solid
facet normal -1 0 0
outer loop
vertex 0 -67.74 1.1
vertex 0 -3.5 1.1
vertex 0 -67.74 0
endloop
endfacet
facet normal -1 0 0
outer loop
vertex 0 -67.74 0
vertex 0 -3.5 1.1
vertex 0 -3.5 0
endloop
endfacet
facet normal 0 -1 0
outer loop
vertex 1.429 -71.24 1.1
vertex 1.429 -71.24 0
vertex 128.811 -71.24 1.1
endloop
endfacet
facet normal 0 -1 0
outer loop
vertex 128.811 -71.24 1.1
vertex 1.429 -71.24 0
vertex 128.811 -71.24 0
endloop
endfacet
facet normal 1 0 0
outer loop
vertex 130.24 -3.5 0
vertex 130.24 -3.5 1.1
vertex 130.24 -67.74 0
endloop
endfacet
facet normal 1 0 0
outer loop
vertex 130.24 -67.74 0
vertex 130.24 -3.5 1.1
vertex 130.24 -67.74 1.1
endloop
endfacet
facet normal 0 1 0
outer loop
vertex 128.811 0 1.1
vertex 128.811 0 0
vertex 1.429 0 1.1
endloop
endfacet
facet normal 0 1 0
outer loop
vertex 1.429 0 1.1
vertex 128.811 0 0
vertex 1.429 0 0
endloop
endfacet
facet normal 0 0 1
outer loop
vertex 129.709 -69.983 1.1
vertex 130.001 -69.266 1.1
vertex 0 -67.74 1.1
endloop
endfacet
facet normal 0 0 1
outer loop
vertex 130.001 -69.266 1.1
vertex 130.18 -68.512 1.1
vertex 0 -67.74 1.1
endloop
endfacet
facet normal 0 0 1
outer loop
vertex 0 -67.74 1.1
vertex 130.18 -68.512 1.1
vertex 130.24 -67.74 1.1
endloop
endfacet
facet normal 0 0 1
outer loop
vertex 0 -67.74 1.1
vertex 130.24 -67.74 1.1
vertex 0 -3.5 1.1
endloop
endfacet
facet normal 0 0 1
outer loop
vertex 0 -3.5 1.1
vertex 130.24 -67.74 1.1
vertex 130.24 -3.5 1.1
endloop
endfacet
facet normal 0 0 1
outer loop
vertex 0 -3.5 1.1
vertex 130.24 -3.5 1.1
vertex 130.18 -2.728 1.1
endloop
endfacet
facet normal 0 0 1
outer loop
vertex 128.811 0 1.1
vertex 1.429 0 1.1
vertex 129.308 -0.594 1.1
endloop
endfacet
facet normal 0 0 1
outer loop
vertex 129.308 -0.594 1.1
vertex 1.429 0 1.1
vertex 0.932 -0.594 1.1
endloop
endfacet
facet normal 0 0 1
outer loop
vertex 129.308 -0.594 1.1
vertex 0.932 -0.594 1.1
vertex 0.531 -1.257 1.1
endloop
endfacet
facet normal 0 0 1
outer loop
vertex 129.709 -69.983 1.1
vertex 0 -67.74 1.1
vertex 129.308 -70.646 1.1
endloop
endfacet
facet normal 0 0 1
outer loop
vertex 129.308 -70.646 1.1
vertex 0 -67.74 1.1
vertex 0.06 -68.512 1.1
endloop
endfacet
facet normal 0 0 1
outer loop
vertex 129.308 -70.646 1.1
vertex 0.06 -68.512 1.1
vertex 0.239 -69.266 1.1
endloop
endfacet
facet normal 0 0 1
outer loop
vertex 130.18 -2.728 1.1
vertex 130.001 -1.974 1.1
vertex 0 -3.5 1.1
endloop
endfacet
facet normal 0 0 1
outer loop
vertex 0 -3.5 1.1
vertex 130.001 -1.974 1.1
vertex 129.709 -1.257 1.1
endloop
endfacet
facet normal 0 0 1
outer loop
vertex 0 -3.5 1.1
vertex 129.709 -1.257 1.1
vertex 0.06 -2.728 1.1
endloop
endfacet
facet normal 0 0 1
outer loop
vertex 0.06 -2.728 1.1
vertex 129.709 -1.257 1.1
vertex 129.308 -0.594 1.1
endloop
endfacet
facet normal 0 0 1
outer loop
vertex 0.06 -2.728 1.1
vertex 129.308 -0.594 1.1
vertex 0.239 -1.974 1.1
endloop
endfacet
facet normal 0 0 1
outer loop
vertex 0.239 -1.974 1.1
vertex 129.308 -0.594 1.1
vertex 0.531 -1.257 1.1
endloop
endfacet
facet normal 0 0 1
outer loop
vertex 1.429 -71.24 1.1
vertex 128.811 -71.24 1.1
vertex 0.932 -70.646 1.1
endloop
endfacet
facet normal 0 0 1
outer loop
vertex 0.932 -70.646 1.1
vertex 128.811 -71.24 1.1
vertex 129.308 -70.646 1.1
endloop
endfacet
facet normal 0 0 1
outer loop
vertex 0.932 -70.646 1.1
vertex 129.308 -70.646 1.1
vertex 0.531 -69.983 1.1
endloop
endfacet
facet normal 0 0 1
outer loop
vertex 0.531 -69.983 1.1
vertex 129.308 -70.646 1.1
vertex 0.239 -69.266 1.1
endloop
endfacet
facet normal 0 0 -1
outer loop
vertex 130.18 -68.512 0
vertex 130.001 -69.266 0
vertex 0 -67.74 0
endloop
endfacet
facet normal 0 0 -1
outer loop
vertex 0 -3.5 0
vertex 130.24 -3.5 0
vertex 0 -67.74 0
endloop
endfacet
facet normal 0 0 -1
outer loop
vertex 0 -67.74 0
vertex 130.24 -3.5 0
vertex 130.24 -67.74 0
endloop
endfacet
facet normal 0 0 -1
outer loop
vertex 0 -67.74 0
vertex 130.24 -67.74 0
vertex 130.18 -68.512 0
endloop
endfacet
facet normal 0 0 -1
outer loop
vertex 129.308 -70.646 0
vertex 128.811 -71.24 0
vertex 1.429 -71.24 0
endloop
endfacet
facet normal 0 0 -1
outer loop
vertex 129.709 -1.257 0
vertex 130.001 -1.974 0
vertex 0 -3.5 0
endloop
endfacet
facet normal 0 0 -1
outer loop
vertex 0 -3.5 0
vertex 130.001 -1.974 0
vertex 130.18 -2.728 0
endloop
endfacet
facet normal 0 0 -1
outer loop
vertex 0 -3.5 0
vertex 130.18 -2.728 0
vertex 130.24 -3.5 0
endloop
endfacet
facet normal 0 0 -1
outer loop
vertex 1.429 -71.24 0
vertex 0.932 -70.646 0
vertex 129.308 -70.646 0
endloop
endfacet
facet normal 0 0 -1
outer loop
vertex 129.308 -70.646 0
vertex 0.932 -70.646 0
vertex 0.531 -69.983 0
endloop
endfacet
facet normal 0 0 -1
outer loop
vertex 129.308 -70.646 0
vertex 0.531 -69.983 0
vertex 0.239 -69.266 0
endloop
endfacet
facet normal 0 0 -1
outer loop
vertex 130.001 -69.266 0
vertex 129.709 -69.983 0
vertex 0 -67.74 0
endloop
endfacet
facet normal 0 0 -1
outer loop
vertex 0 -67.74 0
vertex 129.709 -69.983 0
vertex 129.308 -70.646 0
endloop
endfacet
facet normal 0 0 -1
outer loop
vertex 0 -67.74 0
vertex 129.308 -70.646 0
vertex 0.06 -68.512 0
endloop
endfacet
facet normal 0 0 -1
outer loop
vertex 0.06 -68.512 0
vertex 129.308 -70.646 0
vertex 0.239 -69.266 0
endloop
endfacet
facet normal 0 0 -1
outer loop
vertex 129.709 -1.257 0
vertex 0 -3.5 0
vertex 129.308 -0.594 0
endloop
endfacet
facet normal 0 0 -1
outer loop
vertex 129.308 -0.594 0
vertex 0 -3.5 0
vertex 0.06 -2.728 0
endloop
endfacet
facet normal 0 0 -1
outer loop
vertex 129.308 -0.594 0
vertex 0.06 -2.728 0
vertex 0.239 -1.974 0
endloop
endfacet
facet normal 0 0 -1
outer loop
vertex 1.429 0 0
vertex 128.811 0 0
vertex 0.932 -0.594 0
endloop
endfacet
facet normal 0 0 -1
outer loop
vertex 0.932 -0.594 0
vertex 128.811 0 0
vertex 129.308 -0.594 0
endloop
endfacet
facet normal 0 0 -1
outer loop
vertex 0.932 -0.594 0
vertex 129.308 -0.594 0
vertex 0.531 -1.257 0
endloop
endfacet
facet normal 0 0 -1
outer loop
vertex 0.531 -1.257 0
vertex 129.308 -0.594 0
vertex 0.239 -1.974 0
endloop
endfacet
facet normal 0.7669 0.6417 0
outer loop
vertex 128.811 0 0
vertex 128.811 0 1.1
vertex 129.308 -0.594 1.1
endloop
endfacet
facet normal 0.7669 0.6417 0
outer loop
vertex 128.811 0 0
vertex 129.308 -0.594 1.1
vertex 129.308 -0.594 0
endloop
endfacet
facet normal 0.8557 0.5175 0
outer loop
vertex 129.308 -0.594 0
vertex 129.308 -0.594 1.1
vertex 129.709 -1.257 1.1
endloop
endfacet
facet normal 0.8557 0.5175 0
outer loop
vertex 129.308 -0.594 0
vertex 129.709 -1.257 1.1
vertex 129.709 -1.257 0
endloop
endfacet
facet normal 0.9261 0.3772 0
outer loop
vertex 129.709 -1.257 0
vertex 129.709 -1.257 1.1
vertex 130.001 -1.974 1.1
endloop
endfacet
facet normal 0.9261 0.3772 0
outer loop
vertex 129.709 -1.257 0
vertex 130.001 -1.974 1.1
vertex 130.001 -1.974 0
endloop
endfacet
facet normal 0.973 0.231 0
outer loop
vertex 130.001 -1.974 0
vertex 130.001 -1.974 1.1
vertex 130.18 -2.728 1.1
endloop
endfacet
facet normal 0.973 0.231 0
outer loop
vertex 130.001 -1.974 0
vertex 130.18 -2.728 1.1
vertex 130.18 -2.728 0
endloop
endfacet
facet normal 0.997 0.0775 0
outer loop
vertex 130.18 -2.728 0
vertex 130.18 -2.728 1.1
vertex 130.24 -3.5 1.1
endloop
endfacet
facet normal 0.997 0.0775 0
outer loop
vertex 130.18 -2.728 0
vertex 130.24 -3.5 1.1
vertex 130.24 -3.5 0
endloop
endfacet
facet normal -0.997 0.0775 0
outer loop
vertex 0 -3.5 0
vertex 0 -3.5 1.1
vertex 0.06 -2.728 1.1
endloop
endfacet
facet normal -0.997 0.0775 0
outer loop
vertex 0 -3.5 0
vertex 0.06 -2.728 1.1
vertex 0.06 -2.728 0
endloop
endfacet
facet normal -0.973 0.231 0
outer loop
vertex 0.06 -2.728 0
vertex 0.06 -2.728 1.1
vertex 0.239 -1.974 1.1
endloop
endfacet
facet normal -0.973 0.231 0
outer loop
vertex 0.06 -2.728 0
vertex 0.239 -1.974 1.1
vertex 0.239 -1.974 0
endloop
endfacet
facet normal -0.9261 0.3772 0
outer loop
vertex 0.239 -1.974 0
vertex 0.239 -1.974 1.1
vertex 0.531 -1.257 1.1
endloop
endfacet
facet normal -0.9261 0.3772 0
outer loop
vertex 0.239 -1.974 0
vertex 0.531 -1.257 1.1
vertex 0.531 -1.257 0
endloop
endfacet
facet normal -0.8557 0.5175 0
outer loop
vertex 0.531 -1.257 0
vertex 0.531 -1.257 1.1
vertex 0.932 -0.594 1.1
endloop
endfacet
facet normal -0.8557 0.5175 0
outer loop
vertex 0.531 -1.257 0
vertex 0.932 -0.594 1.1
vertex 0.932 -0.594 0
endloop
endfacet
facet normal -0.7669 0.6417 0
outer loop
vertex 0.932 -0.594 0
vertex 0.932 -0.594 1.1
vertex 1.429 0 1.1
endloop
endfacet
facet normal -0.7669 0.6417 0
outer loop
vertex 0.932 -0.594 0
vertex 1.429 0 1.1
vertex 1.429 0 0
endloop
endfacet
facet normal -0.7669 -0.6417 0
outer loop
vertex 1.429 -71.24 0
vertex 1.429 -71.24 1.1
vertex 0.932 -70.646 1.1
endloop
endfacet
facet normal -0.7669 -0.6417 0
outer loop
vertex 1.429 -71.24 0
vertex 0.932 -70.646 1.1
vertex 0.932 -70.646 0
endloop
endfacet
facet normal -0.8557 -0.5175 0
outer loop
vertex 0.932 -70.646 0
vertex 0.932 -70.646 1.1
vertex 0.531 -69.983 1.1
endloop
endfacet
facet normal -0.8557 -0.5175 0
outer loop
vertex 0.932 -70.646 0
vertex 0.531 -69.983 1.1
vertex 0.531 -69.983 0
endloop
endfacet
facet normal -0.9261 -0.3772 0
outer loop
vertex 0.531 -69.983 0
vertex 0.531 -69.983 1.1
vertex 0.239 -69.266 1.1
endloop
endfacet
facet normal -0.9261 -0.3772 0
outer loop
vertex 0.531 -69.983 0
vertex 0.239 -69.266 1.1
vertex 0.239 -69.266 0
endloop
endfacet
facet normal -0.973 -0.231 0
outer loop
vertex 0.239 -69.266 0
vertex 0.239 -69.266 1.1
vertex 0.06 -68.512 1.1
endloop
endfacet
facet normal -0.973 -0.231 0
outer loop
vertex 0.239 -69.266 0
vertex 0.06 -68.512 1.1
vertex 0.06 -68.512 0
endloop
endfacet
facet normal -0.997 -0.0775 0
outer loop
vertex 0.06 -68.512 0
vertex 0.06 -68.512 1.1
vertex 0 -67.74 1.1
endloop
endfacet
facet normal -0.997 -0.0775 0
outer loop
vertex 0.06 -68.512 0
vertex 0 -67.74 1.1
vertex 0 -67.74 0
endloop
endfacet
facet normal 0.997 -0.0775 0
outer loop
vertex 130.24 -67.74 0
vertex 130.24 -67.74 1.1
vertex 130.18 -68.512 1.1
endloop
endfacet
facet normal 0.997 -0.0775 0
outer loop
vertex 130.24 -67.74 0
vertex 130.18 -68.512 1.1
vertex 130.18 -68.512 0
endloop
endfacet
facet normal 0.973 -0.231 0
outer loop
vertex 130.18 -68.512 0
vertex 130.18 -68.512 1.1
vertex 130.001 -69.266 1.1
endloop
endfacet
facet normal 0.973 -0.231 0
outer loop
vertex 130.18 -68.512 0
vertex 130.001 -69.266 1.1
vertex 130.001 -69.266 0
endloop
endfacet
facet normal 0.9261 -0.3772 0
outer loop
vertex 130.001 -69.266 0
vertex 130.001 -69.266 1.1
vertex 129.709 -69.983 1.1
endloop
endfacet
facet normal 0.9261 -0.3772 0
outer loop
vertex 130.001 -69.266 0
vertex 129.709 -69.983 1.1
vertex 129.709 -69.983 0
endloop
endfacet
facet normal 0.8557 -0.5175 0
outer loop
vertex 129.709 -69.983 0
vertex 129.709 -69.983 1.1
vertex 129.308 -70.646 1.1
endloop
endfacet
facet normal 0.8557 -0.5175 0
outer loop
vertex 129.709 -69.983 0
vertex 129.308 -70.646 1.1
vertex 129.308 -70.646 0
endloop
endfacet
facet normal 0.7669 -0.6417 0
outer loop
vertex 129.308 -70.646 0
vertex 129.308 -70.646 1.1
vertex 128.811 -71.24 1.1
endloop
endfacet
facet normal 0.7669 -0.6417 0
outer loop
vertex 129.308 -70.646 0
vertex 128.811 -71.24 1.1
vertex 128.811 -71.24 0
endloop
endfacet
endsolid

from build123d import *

# Parameters (mm, degrees)
CROQUIS1_W            = 130.24
CROQUIS1_H            = 71.24
BASE_DEPTH            = 1.1
CROQUIS2_W            = 139.816855756
CROQUIS2_H            = 82.895369025
CORTAR_EXTRUIR1_DEPTH = 1.4


with BuildPart() as part:
    # Croquis1 → Base (new body)
    with BuildSketch(Plane.XY):
        with Locations((65.12, -35.62)):
            Rectangle(CROQUIS1_W, CROQUIS1_H)
    extrude(amount=BASE_DEPTH)

    # Croquis2 → Cortar-Extruir1 (cut)
    with BuildSketch(Plane.XY.offset(1.1)):
        with Locations((63.677698172, -34.191443632)):
            Rectangle(CROQUIS2_W, CROQUIS2_H)
        with BuildLine():
            Line((5, 1.5), (125.24, 1.5))
            ThreePointArc((125.24, 1.5), (128.775533906, 0.035533906), (130.24, -3.5))
            Line((130.24, -3.5), (130.24, -67.74))
            ThreePointArc((130.24, -67.74), (128.775533906, -71.275533906), (125.24, -72.74))
            Line((125.24, -72.74), (5, -72.74))
            ThreePointArc((5, -72.74), (1.464466094, -71.275533906), (0, -67.74))
            Line((0, -67.74), (0, -3.5))
            ThreePointArc((0, -3.5), (1.464466094, 0.035533906), (5, 1.5))
        make_face(mode=Mode.SUBTRACT)
    extrude(amount=-CORTAR_EXTRUIR1_DEPTH, mode=Mode.SUBTRACT)


solid = part.part
